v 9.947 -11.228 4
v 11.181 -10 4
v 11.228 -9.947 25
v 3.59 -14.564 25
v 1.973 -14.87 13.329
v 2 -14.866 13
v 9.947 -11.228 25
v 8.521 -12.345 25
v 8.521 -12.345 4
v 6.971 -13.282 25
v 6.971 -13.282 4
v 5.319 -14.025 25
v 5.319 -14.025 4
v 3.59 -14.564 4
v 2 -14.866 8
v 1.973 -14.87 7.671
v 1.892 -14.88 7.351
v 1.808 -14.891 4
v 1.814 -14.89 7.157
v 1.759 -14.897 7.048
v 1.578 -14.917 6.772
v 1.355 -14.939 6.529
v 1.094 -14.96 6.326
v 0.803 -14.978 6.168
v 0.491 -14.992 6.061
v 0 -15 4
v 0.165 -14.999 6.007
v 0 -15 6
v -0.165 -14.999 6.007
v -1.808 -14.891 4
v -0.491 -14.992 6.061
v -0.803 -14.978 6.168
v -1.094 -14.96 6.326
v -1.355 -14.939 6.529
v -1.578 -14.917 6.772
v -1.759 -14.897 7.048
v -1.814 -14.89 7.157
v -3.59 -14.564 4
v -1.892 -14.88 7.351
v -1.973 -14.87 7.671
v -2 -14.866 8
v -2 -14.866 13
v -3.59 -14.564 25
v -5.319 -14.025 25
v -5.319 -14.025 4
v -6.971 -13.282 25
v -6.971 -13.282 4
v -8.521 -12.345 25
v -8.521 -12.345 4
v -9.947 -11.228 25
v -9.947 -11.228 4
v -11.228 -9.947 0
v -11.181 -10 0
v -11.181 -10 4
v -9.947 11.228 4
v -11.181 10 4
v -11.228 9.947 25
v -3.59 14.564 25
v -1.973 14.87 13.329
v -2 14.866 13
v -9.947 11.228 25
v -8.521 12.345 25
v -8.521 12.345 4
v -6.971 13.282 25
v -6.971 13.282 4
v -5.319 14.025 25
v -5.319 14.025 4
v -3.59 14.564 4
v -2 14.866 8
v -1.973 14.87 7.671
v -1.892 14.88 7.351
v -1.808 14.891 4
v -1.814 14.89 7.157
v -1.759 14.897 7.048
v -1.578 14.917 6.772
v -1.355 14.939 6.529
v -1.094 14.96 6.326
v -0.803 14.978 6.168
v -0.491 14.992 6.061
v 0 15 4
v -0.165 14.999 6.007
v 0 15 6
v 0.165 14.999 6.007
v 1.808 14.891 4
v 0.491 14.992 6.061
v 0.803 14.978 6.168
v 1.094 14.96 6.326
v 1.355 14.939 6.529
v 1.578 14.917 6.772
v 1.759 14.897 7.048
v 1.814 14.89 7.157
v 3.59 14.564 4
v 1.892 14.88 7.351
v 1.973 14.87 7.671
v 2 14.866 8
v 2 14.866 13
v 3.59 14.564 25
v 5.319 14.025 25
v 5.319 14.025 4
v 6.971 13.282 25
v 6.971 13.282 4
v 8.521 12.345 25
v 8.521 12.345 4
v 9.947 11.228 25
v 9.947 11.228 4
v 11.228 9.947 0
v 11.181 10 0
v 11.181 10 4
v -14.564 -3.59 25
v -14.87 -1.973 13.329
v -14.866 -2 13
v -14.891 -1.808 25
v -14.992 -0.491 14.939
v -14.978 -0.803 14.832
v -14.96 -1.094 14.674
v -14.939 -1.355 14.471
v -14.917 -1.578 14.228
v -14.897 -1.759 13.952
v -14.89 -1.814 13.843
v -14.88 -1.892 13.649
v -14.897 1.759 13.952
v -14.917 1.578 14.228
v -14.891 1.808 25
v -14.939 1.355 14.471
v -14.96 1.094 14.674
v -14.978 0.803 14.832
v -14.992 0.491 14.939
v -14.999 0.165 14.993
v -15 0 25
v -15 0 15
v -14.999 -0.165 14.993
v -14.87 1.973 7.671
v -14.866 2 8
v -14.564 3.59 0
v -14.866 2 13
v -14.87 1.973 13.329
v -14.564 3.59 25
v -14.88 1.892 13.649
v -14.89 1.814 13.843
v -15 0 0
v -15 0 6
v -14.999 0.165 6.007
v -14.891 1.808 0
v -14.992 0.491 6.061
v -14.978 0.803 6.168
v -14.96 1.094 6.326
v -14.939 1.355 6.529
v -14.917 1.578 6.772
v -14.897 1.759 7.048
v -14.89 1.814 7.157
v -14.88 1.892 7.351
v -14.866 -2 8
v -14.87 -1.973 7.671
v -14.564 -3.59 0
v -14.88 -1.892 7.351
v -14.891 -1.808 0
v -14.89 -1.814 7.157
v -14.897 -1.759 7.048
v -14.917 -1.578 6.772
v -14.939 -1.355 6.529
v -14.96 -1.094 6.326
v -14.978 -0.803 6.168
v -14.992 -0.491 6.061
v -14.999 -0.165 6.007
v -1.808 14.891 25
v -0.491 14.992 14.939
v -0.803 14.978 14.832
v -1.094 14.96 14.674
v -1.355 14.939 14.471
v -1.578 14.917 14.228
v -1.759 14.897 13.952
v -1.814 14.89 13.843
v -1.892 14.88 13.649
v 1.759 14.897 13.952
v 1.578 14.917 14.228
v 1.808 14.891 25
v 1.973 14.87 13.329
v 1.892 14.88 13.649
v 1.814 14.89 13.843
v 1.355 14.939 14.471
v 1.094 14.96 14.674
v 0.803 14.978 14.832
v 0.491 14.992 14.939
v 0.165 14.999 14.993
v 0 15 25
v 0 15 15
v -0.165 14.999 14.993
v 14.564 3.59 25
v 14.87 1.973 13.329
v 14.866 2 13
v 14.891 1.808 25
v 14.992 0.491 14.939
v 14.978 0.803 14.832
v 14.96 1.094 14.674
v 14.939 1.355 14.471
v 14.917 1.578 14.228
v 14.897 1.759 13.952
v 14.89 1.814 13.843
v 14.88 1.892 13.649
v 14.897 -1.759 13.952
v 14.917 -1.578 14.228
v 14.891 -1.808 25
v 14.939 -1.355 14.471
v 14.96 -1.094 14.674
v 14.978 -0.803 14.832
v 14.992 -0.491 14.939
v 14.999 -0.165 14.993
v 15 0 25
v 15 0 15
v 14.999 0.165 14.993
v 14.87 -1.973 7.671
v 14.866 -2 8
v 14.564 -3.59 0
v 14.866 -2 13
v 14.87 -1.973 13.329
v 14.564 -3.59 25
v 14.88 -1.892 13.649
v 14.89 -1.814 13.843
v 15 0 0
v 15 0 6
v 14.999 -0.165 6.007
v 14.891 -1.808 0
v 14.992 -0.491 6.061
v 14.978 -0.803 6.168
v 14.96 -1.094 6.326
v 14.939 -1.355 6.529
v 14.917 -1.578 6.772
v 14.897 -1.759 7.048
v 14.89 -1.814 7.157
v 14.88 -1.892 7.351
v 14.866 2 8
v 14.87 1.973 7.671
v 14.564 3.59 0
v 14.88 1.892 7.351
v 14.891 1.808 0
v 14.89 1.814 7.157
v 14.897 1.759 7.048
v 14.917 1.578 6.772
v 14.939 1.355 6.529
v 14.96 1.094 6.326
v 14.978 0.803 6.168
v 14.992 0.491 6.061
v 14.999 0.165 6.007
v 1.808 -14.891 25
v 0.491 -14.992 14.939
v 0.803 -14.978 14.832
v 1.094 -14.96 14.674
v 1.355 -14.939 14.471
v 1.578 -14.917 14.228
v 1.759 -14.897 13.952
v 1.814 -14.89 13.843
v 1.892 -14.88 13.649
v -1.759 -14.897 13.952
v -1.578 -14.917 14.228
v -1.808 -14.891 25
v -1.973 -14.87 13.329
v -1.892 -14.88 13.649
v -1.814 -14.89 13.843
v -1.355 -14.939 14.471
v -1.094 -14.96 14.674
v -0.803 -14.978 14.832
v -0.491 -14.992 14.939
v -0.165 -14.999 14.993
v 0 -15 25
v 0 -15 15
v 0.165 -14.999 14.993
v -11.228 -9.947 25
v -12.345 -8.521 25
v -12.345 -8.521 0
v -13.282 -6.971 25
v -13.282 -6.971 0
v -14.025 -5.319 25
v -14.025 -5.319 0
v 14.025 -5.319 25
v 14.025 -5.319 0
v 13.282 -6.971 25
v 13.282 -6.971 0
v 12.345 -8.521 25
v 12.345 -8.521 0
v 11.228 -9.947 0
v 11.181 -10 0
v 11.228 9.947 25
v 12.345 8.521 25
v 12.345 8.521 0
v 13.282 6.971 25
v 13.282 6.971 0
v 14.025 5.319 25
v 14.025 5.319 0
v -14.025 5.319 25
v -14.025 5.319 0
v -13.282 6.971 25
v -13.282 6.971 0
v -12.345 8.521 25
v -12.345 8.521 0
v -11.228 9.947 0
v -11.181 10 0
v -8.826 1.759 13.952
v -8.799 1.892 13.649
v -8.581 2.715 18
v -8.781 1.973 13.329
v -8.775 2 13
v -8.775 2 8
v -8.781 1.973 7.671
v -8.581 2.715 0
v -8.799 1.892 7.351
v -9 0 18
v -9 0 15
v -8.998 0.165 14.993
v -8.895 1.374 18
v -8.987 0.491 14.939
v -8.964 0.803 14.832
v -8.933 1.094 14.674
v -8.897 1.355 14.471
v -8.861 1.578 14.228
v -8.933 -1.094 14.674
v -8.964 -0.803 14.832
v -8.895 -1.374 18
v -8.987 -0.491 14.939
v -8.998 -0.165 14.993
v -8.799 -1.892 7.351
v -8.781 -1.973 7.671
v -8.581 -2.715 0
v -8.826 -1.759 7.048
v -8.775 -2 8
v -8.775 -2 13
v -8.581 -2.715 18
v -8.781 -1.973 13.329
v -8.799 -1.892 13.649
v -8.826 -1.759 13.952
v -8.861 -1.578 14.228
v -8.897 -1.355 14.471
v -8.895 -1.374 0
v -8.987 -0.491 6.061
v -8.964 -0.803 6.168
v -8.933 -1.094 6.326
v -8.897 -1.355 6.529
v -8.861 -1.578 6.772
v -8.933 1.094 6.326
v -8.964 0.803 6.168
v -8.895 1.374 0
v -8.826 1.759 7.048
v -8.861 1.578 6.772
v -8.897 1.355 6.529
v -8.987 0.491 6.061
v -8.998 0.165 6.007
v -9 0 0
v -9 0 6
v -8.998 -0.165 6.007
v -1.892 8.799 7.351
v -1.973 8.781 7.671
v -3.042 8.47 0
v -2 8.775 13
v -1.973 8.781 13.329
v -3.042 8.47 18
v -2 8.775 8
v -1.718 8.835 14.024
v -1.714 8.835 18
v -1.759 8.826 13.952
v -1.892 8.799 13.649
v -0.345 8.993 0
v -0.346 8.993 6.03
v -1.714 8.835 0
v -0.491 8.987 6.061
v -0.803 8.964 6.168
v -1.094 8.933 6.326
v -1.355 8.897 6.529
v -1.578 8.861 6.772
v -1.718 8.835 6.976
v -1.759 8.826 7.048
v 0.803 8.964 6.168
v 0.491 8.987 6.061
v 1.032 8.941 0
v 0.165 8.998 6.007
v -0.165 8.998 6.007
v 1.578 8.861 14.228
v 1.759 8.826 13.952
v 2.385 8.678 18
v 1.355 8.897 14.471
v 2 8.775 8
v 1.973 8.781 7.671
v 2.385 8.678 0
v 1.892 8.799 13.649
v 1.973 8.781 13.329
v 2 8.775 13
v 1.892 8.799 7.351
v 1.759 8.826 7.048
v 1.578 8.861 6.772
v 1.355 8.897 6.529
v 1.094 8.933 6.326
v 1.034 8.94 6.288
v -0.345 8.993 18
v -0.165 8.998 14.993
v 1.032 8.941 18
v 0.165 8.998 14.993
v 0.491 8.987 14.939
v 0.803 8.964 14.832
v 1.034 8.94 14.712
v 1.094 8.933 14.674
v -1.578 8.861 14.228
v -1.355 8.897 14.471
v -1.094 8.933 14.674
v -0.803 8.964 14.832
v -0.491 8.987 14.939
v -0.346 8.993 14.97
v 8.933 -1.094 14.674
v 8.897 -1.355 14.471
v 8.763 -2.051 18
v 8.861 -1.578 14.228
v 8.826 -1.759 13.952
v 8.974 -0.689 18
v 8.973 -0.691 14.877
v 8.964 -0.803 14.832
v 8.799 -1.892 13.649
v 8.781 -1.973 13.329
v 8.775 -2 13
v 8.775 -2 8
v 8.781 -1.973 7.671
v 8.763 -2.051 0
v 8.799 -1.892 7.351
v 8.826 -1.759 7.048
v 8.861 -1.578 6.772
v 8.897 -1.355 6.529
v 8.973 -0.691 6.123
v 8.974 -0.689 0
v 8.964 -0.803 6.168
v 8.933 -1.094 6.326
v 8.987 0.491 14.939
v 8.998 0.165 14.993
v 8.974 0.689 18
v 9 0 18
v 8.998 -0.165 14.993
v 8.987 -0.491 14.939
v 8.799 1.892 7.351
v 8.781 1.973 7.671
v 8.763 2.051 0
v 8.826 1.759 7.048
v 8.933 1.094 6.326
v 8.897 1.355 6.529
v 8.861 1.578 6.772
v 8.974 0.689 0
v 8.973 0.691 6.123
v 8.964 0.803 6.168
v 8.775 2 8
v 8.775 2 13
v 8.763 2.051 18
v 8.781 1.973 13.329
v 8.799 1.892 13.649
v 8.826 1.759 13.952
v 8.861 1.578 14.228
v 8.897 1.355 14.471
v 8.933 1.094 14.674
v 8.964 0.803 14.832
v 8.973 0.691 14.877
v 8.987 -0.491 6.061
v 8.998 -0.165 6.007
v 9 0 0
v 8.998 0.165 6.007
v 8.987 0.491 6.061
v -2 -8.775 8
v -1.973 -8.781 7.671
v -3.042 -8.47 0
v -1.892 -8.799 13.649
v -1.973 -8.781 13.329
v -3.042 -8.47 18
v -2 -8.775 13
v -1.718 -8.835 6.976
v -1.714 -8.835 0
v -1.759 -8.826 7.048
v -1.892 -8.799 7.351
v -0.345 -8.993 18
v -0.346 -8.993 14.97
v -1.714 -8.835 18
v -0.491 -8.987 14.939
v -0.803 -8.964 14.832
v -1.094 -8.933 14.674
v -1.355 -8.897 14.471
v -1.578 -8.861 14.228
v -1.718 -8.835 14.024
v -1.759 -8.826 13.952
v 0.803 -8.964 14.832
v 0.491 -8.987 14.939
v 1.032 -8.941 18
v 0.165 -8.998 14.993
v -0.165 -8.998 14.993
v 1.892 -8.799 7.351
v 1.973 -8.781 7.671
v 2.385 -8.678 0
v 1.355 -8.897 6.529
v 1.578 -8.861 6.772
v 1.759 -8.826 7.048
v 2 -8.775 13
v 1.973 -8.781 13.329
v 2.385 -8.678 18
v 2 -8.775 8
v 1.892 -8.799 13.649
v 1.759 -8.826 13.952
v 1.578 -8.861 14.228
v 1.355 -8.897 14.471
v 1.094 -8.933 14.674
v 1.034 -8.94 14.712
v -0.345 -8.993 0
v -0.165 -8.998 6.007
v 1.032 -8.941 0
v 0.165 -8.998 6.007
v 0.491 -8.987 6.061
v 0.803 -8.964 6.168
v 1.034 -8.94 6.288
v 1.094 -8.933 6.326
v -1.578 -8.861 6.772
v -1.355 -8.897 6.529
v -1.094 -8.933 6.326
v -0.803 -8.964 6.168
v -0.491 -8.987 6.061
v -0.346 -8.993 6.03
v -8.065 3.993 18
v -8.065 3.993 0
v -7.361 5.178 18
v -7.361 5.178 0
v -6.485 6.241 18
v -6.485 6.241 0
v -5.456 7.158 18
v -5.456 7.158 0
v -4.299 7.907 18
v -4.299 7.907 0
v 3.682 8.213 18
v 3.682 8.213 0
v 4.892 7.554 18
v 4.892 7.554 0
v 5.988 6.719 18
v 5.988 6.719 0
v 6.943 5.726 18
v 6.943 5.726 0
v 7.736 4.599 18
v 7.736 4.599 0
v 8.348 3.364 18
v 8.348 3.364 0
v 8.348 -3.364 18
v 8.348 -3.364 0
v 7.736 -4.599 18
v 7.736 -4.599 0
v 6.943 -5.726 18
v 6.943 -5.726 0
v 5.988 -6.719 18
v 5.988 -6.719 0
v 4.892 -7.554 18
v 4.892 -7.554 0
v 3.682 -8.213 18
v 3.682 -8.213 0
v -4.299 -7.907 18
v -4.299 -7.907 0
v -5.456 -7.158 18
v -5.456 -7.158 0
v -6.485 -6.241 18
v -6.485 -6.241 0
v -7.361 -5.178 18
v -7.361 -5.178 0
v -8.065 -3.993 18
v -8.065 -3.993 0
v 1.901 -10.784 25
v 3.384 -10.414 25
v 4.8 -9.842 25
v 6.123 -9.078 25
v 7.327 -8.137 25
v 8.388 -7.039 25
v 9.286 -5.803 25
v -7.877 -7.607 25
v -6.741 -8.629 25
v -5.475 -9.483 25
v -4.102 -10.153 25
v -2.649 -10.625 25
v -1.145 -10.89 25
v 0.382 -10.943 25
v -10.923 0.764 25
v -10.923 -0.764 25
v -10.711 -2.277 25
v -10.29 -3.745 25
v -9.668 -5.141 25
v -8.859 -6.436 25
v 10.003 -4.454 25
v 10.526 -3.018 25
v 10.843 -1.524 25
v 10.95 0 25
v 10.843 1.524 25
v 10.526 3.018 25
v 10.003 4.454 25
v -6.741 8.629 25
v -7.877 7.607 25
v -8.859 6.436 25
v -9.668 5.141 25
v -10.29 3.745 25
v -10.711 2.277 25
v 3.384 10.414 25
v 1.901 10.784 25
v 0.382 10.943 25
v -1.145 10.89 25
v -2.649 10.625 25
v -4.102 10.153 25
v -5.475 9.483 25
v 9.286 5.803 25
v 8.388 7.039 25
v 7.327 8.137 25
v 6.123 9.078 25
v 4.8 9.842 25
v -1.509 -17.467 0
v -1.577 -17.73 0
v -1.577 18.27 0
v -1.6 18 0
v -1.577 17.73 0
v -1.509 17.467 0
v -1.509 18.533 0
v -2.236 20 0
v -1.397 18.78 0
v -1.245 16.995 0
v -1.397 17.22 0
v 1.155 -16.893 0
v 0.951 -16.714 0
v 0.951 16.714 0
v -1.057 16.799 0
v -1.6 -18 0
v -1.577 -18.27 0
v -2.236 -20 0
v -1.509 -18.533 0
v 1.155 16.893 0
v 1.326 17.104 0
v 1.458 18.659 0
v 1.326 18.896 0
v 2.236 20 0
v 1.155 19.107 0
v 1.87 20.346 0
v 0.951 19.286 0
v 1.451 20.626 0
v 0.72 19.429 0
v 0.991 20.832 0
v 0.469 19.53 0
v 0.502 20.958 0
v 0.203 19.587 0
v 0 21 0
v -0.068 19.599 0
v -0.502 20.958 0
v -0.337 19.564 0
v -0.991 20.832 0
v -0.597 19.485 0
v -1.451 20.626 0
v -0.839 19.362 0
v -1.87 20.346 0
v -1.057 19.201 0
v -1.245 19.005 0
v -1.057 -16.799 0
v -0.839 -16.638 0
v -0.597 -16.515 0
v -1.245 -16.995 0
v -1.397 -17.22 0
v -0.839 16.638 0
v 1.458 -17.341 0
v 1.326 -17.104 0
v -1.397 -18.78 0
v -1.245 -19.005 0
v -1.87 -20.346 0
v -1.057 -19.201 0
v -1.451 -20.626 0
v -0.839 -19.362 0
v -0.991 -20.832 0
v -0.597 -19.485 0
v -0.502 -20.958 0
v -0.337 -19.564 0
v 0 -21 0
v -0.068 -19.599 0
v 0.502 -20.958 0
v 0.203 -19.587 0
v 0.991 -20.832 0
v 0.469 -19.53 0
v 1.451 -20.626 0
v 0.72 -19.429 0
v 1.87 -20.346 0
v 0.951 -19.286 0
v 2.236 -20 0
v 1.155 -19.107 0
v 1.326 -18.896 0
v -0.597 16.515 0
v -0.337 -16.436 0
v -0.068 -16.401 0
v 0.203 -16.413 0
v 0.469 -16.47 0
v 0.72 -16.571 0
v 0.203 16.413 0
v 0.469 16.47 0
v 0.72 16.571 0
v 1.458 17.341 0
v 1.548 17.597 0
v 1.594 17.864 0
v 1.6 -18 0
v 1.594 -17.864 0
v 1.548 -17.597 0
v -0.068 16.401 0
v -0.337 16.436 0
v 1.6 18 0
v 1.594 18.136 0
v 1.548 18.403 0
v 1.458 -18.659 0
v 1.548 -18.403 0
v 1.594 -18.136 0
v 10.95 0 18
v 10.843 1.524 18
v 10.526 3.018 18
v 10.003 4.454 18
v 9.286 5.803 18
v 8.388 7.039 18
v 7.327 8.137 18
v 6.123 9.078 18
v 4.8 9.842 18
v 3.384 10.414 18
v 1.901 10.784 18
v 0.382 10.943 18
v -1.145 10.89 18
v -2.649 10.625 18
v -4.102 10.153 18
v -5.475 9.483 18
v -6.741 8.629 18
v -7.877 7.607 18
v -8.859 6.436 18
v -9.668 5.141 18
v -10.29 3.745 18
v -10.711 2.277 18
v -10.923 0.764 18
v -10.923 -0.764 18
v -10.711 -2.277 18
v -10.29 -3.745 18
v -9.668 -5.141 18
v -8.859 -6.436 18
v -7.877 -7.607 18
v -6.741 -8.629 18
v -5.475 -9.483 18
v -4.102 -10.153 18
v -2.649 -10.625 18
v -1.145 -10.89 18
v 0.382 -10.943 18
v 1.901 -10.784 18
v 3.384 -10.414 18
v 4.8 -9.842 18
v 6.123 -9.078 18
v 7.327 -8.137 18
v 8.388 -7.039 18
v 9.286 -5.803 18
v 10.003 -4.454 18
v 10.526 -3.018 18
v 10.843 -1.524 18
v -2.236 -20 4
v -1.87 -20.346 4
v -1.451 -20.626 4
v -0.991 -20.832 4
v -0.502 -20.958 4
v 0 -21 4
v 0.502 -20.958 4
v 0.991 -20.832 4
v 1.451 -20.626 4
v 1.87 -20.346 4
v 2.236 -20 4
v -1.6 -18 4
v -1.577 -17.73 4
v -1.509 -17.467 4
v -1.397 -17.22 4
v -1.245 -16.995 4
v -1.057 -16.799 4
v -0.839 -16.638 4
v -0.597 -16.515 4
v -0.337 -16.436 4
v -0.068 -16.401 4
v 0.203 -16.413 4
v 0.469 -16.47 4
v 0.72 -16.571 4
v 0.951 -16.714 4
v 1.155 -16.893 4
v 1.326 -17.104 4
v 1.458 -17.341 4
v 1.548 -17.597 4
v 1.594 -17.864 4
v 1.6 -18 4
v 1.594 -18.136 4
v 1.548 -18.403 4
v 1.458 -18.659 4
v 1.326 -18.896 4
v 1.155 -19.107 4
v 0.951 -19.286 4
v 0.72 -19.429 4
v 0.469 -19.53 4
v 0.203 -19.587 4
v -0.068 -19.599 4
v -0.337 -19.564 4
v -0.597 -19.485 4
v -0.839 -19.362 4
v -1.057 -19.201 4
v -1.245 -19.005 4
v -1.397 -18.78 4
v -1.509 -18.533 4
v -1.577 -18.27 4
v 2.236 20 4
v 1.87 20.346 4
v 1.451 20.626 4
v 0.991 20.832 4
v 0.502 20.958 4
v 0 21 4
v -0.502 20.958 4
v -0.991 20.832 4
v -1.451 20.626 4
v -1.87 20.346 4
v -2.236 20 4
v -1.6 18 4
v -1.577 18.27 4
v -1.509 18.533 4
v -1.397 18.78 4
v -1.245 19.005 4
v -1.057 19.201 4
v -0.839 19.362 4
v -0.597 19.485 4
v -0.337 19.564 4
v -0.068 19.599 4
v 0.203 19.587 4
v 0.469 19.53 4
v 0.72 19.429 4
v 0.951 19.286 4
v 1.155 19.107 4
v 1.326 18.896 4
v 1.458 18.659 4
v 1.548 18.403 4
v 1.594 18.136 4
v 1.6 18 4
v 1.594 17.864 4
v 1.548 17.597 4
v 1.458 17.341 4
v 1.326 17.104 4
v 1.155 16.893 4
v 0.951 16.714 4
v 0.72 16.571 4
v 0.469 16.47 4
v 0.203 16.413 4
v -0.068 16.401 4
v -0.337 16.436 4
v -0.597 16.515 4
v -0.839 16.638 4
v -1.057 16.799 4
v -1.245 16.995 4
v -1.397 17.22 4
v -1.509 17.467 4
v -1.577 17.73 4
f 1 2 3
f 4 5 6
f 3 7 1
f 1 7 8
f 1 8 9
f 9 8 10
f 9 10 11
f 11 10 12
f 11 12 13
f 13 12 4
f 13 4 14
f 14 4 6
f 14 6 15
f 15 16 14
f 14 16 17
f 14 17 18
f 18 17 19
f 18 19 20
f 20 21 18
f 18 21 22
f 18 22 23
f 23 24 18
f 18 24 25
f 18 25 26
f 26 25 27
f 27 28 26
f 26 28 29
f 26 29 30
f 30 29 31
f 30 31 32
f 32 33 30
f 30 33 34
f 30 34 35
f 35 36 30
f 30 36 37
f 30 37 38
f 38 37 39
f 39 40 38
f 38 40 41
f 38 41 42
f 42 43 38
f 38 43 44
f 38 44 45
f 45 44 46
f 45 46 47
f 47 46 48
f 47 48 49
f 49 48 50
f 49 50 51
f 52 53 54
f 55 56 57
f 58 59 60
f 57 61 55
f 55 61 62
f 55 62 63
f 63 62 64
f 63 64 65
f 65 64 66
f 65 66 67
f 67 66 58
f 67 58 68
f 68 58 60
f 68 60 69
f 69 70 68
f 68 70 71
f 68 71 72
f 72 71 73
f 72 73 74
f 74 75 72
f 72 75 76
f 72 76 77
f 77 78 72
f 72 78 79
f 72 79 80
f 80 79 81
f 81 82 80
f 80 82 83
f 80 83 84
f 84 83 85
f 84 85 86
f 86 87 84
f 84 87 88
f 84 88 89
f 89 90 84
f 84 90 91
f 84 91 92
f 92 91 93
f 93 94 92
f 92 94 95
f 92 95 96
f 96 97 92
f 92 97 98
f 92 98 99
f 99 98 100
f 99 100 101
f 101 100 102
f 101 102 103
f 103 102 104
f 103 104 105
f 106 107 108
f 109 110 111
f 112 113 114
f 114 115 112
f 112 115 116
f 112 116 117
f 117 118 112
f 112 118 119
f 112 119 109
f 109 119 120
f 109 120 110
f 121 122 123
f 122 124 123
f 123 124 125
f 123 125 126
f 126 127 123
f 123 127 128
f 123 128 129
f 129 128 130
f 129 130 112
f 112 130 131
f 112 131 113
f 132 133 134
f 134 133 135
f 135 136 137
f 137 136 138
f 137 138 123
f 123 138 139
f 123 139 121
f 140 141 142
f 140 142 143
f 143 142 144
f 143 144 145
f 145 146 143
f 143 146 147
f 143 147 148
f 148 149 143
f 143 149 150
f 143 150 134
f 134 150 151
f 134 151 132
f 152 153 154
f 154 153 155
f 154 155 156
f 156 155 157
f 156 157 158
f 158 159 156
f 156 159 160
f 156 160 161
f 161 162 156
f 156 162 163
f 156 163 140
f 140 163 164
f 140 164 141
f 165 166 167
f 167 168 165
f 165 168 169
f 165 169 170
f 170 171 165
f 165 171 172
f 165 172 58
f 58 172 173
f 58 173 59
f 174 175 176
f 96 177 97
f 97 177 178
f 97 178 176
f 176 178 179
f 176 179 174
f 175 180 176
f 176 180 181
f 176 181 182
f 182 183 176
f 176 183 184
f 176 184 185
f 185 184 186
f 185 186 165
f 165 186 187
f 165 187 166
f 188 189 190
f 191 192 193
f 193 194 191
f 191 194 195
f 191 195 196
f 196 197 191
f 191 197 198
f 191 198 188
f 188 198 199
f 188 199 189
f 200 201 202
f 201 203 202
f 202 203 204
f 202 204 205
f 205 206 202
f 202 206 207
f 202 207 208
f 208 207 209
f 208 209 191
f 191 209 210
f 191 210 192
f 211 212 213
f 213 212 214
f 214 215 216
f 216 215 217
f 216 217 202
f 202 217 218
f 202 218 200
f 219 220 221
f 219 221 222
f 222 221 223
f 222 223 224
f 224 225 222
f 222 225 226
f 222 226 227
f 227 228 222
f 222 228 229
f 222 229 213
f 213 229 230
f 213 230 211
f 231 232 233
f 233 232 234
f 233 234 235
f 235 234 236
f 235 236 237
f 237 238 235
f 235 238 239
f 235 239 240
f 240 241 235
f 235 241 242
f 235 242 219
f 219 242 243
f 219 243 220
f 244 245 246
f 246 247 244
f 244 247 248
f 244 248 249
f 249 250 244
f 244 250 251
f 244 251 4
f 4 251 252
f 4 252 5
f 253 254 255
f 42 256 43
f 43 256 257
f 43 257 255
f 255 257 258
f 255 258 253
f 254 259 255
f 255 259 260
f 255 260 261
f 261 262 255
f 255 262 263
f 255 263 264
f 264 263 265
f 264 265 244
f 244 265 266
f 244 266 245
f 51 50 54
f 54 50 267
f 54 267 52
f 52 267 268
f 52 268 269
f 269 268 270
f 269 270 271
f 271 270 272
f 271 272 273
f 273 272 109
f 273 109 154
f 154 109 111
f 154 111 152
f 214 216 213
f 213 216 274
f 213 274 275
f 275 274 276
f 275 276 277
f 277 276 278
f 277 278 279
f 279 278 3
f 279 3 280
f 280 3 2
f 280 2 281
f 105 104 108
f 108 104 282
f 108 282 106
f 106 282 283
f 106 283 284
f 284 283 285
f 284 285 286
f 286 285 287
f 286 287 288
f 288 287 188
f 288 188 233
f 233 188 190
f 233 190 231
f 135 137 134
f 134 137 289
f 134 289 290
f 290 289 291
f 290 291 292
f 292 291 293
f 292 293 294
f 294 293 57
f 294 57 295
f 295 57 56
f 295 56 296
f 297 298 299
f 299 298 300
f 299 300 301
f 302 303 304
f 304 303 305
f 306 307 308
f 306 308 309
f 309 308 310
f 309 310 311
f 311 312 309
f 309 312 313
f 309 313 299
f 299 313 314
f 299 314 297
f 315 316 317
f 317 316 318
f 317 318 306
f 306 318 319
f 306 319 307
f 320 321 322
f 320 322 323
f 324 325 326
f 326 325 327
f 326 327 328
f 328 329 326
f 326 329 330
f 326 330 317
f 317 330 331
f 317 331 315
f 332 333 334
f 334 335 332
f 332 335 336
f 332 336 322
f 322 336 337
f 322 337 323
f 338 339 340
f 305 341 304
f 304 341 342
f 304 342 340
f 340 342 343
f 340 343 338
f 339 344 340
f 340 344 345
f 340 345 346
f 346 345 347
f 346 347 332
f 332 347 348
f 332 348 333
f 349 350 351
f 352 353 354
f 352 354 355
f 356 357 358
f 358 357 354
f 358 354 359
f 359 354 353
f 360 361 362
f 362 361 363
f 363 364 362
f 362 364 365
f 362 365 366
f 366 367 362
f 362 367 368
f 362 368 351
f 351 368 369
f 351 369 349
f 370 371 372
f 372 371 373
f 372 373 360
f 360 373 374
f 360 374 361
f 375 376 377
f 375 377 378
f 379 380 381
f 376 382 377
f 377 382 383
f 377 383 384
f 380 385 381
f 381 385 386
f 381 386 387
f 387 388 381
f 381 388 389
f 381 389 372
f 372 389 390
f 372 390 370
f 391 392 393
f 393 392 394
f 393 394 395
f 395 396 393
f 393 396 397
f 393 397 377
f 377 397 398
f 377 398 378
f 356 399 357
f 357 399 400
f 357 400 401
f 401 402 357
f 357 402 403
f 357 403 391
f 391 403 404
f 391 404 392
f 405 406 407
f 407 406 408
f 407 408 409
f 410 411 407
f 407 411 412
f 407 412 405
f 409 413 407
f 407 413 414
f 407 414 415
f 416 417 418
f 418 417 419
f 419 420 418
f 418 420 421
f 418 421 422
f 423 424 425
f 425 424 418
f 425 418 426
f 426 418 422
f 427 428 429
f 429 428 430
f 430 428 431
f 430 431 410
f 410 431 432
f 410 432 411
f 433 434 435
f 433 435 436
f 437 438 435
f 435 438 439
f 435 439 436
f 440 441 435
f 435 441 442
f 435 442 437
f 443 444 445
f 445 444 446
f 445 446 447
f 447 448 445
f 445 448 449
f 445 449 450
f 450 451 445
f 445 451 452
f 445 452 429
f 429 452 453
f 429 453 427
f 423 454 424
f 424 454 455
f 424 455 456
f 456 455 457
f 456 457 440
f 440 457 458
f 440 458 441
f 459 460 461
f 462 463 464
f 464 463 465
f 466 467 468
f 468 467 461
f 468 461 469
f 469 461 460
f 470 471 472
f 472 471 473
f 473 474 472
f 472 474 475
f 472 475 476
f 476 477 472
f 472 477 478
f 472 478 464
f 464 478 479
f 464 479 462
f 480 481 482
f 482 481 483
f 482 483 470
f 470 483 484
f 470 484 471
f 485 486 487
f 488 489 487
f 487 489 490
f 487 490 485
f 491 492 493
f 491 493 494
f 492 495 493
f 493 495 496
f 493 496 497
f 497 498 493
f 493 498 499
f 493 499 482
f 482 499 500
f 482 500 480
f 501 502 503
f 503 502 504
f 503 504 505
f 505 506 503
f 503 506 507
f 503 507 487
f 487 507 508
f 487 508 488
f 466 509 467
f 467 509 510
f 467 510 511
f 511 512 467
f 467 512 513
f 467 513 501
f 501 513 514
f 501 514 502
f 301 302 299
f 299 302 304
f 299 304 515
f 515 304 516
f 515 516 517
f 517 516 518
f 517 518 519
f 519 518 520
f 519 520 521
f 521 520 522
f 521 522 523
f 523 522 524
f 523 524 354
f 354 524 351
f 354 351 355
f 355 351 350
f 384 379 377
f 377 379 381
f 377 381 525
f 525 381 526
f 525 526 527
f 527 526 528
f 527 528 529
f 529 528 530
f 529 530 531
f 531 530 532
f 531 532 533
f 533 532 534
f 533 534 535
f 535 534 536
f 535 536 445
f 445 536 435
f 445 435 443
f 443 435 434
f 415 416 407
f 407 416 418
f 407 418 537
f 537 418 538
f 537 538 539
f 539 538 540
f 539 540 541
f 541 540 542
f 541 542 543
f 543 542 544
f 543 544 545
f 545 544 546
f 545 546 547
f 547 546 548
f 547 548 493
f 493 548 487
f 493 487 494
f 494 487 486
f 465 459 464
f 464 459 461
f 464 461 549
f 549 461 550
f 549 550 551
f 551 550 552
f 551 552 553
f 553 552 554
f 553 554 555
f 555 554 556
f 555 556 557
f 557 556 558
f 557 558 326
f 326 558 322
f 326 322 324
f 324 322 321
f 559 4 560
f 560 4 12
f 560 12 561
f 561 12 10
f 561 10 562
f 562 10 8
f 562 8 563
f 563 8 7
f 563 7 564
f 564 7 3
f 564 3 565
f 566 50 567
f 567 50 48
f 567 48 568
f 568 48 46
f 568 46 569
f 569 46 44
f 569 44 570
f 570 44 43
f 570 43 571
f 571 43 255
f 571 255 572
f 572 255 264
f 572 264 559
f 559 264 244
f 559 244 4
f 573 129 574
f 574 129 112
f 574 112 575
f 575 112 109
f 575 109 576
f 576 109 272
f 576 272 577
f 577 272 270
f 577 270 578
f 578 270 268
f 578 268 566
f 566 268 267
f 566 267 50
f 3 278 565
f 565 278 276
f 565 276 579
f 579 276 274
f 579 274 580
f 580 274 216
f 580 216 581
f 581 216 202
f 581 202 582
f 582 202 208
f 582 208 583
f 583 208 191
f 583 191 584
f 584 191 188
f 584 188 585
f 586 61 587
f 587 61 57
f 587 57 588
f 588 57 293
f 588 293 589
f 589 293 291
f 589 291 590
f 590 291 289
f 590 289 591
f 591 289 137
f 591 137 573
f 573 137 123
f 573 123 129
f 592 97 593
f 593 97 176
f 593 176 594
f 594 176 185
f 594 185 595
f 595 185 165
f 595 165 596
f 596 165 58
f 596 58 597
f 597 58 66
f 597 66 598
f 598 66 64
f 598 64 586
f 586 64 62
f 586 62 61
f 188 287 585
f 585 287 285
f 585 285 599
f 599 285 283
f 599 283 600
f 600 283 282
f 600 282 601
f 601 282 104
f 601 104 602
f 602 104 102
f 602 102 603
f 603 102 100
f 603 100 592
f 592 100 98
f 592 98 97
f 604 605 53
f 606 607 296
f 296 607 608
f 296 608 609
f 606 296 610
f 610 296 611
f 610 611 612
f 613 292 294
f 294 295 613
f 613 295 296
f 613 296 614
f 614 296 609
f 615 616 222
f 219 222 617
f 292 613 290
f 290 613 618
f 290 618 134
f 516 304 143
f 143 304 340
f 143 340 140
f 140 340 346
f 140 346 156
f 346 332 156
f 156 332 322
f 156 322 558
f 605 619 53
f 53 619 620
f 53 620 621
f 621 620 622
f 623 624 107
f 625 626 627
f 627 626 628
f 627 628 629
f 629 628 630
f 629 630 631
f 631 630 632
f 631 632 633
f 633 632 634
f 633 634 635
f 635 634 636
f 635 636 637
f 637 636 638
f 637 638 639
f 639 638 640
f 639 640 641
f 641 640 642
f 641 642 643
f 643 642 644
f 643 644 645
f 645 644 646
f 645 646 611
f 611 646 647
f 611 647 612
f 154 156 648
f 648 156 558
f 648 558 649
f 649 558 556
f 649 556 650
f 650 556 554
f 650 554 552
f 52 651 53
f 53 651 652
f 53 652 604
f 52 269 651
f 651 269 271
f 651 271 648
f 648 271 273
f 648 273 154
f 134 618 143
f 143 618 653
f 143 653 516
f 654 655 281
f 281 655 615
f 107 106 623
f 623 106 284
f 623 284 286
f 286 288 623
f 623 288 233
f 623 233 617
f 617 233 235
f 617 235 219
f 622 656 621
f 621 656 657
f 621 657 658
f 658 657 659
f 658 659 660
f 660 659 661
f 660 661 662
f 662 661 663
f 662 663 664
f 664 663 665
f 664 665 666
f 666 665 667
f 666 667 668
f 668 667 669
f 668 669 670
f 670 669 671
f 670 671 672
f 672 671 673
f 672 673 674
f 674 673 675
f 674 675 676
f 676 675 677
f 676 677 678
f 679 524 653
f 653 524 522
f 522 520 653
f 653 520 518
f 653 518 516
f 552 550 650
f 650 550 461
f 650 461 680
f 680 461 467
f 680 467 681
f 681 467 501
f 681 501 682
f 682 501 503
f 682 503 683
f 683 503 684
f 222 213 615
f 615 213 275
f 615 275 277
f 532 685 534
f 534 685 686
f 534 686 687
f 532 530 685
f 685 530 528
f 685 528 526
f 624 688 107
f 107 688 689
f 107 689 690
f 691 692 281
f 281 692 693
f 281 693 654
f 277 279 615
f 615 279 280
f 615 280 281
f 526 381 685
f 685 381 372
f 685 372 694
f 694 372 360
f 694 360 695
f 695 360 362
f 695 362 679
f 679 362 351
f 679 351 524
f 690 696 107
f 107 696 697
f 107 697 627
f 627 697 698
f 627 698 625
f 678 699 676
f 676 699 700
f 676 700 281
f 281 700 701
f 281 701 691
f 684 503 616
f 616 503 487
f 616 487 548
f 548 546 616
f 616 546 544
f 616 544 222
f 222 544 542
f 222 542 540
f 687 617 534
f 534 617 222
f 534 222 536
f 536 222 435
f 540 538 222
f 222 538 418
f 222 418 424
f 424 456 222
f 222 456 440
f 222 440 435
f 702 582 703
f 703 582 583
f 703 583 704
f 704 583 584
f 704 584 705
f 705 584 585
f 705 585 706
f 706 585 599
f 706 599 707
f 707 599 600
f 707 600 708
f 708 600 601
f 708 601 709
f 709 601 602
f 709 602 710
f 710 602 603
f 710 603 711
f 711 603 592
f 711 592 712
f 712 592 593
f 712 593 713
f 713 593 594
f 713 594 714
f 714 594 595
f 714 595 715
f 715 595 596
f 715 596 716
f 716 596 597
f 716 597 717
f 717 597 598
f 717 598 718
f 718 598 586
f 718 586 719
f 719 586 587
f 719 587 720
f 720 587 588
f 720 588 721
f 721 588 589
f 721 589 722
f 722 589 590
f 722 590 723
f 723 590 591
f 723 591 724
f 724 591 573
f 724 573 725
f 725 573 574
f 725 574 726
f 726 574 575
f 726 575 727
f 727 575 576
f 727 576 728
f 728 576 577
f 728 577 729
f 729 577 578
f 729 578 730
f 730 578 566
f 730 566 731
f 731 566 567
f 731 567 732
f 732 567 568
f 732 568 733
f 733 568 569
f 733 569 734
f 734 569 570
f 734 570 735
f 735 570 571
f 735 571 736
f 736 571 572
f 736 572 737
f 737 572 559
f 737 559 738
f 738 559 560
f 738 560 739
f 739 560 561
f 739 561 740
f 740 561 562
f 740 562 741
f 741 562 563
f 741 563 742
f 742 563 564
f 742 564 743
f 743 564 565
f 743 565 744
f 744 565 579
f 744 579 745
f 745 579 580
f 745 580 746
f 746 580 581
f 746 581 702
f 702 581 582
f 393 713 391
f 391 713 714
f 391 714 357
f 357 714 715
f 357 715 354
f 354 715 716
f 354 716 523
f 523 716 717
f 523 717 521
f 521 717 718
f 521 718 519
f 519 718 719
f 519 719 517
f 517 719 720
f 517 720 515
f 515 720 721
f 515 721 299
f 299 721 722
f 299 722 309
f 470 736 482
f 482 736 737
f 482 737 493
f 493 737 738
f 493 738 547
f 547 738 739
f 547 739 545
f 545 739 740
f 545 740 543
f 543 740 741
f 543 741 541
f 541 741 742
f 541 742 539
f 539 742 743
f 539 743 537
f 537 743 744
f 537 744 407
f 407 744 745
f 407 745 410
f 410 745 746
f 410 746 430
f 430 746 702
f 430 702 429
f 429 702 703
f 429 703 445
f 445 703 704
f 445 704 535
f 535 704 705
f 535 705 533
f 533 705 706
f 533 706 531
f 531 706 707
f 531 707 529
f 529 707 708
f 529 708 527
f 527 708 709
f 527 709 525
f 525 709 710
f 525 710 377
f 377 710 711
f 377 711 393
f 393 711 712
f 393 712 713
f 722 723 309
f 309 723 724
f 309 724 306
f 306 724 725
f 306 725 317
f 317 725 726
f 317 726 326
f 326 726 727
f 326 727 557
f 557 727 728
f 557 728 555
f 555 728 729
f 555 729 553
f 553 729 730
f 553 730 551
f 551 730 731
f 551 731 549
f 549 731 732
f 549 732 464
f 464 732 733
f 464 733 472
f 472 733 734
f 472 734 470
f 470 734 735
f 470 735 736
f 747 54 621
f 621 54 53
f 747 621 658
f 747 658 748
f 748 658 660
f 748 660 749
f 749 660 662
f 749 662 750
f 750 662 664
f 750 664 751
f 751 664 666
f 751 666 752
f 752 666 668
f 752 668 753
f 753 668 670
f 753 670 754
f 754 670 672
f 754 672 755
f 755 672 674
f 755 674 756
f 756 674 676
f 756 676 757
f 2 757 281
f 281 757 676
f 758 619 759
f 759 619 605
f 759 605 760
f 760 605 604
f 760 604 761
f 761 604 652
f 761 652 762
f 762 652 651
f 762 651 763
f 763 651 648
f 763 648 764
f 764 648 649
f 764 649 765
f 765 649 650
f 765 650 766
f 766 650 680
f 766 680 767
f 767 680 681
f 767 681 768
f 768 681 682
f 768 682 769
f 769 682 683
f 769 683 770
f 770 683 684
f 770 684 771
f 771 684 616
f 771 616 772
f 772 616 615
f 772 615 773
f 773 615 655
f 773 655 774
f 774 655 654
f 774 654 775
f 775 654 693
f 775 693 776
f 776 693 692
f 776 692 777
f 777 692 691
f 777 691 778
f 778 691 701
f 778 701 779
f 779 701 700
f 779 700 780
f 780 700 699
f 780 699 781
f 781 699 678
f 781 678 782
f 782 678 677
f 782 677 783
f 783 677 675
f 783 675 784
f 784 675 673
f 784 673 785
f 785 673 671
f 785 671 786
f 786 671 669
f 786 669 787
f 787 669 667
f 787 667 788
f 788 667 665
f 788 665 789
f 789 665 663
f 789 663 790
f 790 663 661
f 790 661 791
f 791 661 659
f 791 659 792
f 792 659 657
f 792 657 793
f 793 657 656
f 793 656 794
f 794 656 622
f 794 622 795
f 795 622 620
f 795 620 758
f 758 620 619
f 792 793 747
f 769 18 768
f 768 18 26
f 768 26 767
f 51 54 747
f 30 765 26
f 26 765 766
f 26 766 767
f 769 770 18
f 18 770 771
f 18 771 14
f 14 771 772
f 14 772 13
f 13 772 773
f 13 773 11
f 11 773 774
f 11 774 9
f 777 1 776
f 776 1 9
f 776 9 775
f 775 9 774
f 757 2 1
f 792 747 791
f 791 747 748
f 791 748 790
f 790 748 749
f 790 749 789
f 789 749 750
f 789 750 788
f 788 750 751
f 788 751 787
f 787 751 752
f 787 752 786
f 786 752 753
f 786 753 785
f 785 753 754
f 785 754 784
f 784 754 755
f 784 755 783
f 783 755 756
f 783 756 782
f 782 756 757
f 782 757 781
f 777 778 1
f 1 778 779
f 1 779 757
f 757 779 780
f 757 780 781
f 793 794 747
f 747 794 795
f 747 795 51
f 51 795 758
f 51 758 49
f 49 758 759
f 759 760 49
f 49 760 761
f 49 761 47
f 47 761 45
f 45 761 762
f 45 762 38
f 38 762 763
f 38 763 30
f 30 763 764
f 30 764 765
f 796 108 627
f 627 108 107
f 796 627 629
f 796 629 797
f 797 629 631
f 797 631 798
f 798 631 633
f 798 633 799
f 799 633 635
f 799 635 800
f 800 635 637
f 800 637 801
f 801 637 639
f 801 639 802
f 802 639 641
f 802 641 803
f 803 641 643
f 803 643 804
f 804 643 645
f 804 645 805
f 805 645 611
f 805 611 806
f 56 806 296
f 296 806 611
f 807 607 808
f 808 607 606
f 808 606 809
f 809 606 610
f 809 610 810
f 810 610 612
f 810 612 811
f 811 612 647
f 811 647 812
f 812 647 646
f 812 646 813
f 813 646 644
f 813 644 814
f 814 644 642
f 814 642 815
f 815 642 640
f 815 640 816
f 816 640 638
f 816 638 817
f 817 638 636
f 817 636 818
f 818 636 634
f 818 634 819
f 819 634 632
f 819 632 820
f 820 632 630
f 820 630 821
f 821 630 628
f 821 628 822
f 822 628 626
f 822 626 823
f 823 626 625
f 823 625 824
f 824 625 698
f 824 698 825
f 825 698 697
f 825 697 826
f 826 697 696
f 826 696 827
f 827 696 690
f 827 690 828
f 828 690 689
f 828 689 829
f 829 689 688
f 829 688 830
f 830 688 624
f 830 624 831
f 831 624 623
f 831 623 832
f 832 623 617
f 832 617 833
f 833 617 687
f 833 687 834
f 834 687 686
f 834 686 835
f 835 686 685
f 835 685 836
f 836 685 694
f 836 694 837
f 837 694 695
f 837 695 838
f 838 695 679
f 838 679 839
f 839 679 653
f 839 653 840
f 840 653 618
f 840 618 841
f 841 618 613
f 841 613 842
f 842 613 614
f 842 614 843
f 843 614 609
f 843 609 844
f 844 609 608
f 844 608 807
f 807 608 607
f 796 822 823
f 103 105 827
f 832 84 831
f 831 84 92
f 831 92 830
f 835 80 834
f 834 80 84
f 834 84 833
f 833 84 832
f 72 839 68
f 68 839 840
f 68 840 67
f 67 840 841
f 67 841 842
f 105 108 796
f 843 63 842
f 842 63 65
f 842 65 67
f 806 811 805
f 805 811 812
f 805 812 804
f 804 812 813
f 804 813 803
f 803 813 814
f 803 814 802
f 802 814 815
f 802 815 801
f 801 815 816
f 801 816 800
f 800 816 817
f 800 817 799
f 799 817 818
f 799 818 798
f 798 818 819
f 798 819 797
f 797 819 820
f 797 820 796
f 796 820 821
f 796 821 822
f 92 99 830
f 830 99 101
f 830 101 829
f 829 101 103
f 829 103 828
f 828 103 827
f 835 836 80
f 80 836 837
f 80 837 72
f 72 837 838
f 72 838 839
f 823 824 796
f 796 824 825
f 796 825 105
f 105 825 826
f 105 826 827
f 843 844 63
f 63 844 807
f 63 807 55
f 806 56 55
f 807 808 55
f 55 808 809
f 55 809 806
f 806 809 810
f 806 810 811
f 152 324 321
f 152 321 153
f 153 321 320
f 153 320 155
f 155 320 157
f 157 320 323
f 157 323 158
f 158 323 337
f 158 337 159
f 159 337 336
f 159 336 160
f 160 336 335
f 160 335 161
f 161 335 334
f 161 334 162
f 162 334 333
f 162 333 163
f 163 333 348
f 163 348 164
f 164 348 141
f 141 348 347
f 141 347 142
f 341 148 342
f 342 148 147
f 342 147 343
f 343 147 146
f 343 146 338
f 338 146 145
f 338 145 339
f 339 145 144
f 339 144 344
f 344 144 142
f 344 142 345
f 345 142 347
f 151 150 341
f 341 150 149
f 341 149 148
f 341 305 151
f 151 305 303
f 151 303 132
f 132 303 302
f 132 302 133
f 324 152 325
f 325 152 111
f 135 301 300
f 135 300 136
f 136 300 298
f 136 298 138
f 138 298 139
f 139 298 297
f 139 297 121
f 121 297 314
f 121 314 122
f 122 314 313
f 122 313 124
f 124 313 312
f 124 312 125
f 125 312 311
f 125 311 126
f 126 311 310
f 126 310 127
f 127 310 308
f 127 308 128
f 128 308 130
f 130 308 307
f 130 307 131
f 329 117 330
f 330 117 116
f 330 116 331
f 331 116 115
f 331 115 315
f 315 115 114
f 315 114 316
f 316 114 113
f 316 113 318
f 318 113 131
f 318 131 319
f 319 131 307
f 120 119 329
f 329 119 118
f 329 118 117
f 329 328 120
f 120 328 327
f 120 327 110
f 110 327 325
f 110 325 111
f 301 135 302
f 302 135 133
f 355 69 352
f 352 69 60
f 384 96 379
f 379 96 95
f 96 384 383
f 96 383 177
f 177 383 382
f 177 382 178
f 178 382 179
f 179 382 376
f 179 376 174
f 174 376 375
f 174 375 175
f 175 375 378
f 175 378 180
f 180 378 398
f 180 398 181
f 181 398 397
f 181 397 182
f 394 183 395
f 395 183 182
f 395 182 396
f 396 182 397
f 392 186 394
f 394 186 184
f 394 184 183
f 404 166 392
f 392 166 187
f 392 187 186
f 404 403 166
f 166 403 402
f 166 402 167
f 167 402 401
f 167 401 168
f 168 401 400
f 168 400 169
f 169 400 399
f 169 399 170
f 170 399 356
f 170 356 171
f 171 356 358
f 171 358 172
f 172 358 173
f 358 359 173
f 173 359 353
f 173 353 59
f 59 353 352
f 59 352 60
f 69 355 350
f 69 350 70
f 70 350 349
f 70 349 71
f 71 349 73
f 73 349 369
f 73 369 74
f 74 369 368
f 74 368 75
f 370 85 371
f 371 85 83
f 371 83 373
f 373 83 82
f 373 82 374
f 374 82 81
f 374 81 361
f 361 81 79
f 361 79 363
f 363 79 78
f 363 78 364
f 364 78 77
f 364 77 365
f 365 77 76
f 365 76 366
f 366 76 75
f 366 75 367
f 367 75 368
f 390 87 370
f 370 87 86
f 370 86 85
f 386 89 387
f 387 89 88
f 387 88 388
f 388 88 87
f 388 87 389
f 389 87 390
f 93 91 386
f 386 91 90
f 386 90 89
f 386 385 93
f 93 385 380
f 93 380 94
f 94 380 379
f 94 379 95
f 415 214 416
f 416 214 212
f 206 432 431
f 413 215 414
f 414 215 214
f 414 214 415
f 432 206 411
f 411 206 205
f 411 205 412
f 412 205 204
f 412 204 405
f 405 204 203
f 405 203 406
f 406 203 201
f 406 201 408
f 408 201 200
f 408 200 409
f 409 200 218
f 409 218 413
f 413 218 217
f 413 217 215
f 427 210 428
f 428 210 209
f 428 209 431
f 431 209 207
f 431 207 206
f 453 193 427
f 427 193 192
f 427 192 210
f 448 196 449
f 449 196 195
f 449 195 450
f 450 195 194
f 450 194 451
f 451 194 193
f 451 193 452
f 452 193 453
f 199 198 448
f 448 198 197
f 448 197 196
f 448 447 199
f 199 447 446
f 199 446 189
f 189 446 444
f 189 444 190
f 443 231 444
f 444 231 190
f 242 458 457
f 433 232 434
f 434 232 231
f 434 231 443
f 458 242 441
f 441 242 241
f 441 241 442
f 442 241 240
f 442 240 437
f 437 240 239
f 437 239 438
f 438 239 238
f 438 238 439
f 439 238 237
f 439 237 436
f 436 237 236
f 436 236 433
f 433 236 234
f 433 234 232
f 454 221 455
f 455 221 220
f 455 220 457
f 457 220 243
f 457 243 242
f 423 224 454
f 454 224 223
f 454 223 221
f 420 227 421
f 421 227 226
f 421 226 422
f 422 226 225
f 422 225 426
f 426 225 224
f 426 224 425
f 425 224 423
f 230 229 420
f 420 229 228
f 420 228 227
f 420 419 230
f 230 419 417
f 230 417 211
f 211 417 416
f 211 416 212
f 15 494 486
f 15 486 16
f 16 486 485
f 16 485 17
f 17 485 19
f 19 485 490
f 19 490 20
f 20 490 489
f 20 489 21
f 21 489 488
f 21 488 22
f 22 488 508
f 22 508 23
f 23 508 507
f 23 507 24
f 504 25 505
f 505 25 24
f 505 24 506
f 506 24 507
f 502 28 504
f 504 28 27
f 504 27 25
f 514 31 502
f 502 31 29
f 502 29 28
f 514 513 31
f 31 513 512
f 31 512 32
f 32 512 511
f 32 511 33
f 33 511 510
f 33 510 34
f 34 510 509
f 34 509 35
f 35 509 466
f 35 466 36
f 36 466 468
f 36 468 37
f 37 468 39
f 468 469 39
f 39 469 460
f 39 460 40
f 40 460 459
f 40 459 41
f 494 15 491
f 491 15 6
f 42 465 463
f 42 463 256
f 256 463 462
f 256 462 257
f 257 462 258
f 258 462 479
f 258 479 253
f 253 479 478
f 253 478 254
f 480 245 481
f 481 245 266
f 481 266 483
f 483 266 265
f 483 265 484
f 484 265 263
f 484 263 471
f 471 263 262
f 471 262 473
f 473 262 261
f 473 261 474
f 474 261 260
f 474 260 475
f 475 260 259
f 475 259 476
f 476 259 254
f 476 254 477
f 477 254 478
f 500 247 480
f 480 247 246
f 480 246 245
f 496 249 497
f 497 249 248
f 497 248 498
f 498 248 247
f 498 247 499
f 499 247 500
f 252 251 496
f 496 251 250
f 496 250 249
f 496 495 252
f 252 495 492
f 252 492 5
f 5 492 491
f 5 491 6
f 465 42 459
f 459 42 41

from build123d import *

# Parameters (mm, degrees)
CROQUIS1_R              = 15
CROQUIS1_R_2            = 9
SALIENTE_EXTRUIR1_DEPTH = 25
CROQUIS2_R              = 10.95
CORTAR_EXTRUIR1_DEPTH   = 7
CROQUIS3_R              = 1.6
SALIENTE_EXTRUIR2_DEPTH = 4
CORTAR_EXTRUIR2_DEPTH   = 26
MATRIZC1_COUNT          = 4


with BuildPart() as part:
    # Croquis1 → Saliente-Extruir1 (new body)
    with BuildSketch(Plane(origin=(0, 0, 0), x_dir=(0, 1, 0), z_dir=(0, 0, 1))):
        with Locations(Location((0, 0, 0), (0, 0, 270))):
            Circle(CROQUIS1_R)
        with Locations(Location((0, 0, 0), (0, 0, 270))):
            Circle(CROQUIS1_R_2, mode=Mode.SUBTRACT)
    extrude(amount=SALIENTE_EXTRUIR1_DEPTH)

    # Croquis2 → Cortar-Extruir1 (cut)
    with BuildSketch(Plane.XY.offset(25)):
        Circle(CROQUIS2_R)
    extrude(amount=-CORTAR_EXTRUIR1_DEPTH, mode=Mode.SUBTRACT)

    # Croquis3 → Saliente-Extruir2 (add)
    with BuildSketch(Plane(origin=(0, 0, 0), x_dir=(0, 1, 0), z_dir=(0, 0, 1))):
        with BuildLine():
            Line((-20.000196267, -2.236419092), (-9.999672874, -11.180632469))
            ThreePointArc((-9.999672874, -11.180632469), (-15, 0), (-9.999672874, 11.180632469))
            Line((-9.999672874, 11.180632469), (-20.000196267, 2.236419092))
            ThreePointArc((-20.000196267, 2.236419092), (-21.000392551, 0), (-20.000196267, -2.236419092))
        make_face()
        with Locations(Location((-18, 0, 0), (0, 0, 270))):
            Circle(CROQUIS3_R, mode=Mode.SUBTRACT)
    saliente_extruir2 = extrude(amount=SALIENTE_EXTRUIR2_DEPTH)

    # Simetría1: Saliente-Extruir2 across plane
    add(saliente_extruir2.mirror(Plane.ZX))

    # Croquis4 → Cortar-Extruir2 (cut)
    with BuildSketch(Plane.YZ):
        with BuildLine():
            Line((-2, 8), (-2, 13))
            ThreePointArc((-2, 13), (0, 15), (2, 13))
            Line((2, 13), (2, 8))
            ThreePointArc((2, 8), (0, 6), (-2, 8))
        make_face()
    cortar_extruir2 = extrude(amount=-CORTAR_EXTRUIR2_DEPTH, mode=Mode.SUBTRACT)

    # MatrizC1: Cortar-Extruir2 ×4 about axis
    matrizc1_axis = Axis((0, 0, 0), (0, 0, 1))
    for i in range(1, MATRIZC1_COUNT):
        add(cortar_extruir2.rotate(matrizc1_axis, i * 360 / MATRIZC1_COUNT), mode=Mode.SUBTRACT)


solid = part.part
